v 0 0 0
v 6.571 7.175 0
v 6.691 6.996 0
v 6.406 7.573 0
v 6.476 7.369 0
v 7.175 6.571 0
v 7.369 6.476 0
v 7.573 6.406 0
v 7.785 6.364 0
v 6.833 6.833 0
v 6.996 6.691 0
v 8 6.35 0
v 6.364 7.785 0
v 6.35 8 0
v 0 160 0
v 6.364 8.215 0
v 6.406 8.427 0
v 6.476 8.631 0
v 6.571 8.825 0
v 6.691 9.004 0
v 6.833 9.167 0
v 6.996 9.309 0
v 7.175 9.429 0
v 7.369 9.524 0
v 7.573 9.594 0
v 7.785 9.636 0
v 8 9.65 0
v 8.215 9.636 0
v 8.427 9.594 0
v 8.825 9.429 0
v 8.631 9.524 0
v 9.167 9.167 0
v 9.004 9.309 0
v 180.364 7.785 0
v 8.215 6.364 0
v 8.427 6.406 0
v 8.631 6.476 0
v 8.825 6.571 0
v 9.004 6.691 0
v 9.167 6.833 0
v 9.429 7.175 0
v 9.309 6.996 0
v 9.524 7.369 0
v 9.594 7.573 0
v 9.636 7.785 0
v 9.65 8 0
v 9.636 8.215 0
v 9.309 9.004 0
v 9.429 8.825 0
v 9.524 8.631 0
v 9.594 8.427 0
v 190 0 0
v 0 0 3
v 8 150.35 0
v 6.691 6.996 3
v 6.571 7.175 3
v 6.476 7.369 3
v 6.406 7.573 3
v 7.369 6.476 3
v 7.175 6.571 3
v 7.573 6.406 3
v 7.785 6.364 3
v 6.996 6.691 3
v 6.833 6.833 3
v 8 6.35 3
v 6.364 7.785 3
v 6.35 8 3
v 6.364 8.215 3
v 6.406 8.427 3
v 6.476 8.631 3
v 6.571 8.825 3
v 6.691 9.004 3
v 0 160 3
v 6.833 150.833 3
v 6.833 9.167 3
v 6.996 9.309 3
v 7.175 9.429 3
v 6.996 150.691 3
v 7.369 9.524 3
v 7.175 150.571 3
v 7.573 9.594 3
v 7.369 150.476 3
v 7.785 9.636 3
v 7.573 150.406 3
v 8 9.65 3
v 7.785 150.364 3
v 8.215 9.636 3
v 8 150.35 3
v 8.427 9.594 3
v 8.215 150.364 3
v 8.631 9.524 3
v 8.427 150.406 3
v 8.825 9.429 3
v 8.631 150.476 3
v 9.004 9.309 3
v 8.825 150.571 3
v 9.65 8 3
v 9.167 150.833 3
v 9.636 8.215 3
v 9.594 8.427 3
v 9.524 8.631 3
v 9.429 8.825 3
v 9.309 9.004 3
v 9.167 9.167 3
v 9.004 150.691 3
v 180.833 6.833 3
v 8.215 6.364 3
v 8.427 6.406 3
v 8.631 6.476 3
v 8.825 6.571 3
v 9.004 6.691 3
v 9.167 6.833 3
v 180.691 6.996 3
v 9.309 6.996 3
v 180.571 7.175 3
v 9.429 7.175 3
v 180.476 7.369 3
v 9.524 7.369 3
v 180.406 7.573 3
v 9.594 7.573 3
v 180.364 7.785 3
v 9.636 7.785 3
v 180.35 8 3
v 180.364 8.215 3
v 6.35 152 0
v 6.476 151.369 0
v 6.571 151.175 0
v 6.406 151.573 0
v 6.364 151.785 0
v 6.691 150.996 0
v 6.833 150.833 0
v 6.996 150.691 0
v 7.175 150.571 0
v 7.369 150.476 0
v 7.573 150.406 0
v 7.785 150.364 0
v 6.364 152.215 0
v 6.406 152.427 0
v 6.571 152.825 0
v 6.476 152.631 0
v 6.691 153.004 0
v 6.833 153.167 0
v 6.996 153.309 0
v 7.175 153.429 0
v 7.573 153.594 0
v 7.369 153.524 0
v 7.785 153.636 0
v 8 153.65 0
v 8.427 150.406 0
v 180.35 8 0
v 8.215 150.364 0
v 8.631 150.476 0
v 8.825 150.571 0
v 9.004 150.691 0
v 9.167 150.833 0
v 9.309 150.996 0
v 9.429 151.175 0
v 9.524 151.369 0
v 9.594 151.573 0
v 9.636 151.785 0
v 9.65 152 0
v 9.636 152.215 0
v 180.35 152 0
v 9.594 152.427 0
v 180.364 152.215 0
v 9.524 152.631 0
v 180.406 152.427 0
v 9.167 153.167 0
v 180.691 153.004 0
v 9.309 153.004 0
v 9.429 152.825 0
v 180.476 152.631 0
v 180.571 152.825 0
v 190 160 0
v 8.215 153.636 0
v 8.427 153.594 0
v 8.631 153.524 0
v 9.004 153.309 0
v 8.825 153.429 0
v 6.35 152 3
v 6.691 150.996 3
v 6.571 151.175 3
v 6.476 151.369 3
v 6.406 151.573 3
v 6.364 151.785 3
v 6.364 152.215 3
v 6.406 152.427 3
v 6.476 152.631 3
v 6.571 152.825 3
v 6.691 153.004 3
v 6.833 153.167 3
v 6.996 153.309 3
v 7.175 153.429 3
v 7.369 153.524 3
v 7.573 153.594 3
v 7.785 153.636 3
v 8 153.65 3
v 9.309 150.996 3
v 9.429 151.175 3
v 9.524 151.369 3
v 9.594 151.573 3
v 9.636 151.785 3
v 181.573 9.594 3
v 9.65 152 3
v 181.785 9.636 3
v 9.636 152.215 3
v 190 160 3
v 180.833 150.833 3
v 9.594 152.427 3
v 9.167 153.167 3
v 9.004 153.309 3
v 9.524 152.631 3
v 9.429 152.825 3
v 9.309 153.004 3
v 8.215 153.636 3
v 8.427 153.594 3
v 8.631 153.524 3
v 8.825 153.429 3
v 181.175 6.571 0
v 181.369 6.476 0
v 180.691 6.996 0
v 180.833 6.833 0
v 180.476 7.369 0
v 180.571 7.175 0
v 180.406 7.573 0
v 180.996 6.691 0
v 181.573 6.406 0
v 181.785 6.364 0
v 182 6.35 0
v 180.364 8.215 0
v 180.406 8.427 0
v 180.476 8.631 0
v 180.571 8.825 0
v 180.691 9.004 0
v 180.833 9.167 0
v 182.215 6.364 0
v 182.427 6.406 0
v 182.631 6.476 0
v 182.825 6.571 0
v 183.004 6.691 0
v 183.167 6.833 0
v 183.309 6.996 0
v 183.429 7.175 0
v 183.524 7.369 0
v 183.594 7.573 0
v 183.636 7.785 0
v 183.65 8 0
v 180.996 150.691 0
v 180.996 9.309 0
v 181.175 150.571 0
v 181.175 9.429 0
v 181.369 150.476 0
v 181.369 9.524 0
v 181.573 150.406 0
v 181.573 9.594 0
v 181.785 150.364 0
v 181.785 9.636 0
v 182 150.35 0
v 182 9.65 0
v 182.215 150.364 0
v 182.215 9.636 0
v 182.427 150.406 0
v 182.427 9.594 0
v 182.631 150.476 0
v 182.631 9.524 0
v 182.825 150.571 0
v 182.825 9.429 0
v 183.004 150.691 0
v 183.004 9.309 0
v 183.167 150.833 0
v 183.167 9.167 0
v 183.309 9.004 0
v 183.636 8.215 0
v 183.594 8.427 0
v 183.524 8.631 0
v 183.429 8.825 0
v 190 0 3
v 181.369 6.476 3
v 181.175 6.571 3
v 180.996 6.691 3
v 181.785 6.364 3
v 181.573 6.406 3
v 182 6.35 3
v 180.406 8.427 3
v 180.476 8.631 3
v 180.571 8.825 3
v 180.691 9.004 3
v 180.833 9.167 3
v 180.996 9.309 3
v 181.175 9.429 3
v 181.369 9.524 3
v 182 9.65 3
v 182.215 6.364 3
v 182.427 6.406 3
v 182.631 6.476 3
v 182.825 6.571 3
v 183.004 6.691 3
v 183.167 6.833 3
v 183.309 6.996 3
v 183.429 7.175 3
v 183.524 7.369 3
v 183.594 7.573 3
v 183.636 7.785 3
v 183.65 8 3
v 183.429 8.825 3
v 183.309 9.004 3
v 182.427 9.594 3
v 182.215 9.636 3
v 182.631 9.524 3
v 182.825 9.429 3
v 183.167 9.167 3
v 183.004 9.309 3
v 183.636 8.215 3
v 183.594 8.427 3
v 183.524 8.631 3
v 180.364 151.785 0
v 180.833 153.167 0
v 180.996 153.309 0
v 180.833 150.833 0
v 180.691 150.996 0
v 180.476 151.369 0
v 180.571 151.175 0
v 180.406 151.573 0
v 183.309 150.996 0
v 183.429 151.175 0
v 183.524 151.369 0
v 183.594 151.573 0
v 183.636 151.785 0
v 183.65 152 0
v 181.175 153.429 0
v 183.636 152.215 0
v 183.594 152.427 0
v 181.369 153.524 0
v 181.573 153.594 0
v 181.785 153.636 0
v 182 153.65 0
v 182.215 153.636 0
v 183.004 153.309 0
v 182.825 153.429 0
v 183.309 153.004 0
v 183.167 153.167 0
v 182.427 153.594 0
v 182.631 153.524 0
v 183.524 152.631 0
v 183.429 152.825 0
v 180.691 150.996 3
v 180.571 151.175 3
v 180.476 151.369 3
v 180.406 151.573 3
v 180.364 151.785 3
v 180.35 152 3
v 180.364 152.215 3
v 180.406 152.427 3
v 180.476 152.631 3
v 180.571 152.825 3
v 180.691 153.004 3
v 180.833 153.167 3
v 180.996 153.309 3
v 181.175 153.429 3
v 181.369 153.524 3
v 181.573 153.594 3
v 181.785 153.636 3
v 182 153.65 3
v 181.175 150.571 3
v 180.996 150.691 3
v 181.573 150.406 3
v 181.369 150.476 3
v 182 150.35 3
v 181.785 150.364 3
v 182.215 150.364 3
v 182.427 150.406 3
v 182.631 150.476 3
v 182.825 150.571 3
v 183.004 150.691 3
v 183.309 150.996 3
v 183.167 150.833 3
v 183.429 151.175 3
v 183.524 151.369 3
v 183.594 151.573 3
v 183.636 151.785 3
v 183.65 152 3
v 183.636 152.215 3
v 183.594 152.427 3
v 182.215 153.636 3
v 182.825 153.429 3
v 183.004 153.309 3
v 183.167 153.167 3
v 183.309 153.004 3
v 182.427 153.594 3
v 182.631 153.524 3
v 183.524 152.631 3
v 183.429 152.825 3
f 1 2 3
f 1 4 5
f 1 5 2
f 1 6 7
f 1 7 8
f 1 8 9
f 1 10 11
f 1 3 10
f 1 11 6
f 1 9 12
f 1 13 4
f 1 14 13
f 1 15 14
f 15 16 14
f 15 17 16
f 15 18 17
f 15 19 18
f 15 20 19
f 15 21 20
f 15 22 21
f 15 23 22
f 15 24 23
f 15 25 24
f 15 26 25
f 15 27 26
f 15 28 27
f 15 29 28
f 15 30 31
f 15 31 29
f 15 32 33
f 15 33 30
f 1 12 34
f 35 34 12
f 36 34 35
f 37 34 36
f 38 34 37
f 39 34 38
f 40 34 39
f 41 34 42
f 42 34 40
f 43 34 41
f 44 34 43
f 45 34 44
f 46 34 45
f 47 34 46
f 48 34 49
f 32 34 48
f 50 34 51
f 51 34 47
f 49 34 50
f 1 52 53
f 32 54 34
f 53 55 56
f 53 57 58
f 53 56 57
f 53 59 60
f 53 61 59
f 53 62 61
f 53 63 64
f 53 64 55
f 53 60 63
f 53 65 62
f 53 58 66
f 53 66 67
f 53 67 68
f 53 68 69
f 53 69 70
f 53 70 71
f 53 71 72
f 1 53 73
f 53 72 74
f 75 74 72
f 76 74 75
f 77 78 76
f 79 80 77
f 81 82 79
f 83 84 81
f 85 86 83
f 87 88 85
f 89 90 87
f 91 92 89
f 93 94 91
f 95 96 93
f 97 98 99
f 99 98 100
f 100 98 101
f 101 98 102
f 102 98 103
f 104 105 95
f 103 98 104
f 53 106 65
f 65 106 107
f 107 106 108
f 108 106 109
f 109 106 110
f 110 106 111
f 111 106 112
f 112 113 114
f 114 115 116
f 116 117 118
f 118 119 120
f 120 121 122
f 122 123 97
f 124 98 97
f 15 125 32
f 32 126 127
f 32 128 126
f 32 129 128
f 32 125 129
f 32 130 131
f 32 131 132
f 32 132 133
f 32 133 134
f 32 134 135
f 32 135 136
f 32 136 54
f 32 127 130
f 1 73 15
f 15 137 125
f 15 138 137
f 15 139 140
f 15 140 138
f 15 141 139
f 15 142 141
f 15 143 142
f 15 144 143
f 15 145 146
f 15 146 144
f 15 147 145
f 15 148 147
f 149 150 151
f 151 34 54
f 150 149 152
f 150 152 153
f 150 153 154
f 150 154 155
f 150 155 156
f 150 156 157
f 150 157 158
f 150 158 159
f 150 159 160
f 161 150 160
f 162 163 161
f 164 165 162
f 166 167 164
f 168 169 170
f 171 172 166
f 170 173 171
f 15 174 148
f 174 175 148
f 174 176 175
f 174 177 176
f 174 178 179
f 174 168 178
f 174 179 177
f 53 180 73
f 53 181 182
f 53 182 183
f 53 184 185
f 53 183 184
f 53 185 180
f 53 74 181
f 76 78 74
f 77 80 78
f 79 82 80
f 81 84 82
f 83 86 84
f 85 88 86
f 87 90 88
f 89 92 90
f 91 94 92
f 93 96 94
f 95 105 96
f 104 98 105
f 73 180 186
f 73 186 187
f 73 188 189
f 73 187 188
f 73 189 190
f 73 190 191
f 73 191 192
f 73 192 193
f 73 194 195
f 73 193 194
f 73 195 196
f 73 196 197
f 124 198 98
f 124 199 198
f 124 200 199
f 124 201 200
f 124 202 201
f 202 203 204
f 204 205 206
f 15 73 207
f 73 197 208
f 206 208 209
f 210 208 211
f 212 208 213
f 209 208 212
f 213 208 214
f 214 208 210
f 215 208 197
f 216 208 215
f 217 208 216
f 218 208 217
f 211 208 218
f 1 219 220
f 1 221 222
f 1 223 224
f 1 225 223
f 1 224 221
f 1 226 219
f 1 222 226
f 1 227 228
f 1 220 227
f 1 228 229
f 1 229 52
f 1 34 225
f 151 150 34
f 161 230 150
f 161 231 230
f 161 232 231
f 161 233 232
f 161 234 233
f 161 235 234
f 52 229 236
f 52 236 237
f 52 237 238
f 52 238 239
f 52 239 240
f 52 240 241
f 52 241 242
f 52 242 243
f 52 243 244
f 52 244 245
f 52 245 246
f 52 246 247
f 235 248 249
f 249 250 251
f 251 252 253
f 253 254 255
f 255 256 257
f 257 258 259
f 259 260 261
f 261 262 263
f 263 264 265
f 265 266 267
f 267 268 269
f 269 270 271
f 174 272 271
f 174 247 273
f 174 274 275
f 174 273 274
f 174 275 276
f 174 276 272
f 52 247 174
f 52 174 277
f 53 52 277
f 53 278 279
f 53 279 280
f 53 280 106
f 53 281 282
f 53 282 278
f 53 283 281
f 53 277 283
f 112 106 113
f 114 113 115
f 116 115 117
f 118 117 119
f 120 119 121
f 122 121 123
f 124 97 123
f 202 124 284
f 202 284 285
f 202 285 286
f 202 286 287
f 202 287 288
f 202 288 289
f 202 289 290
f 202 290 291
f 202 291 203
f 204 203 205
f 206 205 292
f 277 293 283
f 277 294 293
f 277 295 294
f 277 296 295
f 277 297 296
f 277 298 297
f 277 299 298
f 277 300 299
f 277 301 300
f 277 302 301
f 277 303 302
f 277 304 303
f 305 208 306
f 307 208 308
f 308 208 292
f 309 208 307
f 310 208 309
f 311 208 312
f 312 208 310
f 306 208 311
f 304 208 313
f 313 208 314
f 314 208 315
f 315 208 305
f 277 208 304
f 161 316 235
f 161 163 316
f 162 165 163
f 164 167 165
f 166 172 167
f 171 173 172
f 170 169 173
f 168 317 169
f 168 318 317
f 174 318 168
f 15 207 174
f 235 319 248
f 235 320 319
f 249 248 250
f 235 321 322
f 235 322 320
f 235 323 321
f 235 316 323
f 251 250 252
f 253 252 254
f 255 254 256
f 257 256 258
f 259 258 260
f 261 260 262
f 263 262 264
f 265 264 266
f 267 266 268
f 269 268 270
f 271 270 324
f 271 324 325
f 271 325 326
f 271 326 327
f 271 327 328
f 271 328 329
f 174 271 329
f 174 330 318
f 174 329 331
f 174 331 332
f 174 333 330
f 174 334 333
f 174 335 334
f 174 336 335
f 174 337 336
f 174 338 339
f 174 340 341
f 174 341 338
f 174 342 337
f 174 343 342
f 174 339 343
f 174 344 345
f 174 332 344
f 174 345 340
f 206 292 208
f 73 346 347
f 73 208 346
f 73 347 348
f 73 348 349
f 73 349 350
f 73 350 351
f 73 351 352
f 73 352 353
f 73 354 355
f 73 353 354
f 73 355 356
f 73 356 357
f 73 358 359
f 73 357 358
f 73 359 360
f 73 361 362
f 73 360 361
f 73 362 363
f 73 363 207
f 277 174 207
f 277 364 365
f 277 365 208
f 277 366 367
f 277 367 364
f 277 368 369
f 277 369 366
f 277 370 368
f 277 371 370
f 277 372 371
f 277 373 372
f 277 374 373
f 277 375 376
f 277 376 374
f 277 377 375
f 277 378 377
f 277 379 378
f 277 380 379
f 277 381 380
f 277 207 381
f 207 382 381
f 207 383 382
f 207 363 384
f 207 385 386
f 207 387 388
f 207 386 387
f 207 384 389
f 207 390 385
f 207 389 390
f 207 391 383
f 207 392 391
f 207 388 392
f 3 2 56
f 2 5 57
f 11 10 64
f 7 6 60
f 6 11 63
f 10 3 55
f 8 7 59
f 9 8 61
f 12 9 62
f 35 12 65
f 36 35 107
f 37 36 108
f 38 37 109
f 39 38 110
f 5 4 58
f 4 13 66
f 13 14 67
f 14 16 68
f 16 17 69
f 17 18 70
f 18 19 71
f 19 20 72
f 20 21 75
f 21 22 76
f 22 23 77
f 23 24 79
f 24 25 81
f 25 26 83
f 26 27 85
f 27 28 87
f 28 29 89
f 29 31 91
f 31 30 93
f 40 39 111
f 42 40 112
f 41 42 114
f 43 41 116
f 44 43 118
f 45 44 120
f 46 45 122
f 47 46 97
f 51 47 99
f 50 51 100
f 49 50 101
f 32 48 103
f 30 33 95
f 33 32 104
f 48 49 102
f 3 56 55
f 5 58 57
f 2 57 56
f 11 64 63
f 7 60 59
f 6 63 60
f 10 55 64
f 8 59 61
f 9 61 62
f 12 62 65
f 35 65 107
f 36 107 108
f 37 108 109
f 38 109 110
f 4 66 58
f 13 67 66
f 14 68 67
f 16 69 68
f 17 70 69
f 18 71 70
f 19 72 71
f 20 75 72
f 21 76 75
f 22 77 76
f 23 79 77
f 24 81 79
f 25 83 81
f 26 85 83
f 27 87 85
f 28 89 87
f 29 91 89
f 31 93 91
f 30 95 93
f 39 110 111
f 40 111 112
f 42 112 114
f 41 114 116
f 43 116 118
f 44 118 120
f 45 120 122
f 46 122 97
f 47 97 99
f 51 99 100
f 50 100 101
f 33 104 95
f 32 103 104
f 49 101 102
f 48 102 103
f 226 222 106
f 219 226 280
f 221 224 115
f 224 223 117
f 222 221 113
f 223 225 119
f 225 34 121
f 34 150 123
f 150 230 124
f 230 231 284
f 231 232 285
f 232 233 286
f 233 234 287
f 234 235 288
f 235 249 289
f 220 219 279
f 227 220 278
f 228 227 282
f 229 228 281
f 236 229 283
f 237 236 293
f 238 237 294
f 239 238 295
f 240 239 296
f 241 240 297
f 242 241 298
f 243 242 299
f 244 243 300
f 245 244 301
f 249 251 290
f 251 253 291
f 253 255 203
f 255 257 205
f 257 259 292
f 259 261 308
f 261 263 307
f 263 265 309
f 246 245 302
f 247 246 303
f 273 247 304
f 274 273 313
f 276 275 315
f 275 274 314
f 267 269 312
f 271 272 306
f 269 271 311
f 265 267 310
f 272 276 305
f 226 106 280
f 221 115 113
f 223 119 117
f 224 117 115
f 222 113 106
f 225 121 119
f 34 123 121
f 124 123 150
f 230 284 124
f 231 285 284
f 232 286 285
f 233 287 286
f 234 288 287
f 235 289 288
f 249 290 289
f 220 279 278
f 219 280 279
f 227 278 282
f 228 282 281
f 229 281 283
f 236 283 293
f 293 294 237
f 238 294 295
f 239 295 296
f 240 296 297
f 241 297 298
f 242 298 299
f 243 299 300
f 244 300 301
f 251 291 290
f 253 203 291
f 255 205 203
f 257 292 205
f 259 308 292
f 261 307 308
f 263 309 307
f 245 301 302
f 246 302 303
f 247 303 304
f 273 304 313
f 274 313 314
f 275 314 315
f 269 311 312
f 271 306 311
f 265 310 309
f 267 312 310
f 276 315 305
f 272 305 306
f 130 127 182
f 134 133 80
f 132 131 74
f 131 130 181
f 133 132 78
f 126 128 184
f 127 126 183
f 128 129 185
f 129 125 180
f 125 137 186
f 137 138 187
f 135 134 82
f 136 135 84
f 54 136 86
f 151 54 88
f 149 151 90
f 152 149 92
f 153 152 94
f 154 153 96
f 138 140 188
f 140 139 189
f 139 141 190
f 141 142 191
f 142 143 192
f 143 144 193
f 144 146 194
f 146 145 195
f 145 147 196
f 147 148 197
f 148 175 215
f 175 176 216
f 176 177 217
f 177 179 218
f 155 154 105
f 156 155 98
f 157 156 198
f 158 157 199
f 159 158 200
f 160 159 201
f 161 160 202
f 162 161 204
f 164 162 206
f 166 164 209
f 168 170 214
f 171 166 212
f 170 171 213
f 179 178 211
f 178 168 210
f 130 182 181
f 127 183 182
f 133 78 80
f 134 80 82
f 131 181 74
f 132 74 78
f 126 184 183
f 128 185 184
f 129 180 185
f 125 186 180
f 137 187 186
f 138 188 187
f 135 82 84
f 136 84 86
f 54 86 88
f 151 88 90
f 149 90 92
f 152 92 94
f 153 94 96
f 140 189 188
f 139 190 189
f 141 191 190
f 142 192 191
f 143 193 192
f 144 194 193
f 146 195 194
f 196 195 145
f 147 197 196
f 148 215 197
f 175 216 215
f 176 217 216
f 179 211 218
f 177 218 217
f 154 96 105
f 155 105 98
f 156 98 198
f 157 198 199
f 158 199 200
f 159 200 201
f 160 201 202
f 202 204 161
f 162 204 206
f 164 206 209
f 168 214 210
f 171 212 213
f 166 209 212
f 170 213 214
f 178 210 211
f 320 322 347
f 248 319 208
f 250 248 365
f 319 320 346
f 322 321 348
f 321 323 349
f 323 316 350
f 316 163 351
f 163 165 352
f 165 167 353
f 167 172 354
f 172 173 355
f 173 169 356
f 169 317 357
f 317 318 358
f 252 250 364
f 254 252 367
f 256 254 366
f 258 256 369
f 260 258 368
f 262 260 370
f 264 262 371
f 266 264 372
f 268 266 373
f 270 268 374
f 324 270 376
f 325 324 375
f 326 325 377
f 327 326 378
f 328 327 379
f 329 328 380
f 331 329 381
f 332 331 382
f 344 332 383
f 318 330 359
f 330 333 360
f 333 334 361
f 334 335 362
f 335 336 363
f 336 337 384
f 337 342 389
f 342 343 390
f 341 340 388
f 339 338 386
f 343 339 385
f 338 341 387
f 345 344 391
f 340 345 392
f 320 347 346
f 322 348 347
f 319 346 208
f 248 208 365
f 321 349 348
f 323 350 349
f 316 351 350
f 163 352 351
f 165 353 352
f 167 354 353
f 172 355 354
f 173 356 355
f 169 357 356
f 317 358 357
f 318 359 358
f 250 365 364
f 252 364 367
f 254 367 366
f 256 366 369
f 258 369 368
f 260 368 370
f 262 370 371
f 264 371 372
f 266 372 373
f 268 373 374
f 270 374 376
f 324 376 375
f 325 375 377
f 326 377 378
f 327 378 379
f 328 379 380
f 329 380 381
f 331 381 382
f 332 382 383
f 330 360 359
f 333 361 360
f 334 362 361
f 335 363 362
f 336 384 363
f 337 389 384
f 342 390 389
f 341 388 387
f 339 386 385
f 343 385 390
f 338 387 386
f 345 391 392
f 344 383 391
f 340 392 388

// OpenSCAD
// GENERATED. MC2 trial geometry in mm.
difference() {
cube([190.0,160,3.0]);
translate([8, 8, -0.1]) { cylinder(d=3.3,h=3.2,$fn=48); }
translate([182.0, 8, -0.1]) { cylinder(d=3.3,h=3.2,$fn=48); }
translate([8, 152, -0.1]) { cylinder(d=3.3,h=3.2,$fn=48); }
translate([182.0, 152, -0.1]) { cylinder(d=3.3,h=3.2,$fn=48); }
}
